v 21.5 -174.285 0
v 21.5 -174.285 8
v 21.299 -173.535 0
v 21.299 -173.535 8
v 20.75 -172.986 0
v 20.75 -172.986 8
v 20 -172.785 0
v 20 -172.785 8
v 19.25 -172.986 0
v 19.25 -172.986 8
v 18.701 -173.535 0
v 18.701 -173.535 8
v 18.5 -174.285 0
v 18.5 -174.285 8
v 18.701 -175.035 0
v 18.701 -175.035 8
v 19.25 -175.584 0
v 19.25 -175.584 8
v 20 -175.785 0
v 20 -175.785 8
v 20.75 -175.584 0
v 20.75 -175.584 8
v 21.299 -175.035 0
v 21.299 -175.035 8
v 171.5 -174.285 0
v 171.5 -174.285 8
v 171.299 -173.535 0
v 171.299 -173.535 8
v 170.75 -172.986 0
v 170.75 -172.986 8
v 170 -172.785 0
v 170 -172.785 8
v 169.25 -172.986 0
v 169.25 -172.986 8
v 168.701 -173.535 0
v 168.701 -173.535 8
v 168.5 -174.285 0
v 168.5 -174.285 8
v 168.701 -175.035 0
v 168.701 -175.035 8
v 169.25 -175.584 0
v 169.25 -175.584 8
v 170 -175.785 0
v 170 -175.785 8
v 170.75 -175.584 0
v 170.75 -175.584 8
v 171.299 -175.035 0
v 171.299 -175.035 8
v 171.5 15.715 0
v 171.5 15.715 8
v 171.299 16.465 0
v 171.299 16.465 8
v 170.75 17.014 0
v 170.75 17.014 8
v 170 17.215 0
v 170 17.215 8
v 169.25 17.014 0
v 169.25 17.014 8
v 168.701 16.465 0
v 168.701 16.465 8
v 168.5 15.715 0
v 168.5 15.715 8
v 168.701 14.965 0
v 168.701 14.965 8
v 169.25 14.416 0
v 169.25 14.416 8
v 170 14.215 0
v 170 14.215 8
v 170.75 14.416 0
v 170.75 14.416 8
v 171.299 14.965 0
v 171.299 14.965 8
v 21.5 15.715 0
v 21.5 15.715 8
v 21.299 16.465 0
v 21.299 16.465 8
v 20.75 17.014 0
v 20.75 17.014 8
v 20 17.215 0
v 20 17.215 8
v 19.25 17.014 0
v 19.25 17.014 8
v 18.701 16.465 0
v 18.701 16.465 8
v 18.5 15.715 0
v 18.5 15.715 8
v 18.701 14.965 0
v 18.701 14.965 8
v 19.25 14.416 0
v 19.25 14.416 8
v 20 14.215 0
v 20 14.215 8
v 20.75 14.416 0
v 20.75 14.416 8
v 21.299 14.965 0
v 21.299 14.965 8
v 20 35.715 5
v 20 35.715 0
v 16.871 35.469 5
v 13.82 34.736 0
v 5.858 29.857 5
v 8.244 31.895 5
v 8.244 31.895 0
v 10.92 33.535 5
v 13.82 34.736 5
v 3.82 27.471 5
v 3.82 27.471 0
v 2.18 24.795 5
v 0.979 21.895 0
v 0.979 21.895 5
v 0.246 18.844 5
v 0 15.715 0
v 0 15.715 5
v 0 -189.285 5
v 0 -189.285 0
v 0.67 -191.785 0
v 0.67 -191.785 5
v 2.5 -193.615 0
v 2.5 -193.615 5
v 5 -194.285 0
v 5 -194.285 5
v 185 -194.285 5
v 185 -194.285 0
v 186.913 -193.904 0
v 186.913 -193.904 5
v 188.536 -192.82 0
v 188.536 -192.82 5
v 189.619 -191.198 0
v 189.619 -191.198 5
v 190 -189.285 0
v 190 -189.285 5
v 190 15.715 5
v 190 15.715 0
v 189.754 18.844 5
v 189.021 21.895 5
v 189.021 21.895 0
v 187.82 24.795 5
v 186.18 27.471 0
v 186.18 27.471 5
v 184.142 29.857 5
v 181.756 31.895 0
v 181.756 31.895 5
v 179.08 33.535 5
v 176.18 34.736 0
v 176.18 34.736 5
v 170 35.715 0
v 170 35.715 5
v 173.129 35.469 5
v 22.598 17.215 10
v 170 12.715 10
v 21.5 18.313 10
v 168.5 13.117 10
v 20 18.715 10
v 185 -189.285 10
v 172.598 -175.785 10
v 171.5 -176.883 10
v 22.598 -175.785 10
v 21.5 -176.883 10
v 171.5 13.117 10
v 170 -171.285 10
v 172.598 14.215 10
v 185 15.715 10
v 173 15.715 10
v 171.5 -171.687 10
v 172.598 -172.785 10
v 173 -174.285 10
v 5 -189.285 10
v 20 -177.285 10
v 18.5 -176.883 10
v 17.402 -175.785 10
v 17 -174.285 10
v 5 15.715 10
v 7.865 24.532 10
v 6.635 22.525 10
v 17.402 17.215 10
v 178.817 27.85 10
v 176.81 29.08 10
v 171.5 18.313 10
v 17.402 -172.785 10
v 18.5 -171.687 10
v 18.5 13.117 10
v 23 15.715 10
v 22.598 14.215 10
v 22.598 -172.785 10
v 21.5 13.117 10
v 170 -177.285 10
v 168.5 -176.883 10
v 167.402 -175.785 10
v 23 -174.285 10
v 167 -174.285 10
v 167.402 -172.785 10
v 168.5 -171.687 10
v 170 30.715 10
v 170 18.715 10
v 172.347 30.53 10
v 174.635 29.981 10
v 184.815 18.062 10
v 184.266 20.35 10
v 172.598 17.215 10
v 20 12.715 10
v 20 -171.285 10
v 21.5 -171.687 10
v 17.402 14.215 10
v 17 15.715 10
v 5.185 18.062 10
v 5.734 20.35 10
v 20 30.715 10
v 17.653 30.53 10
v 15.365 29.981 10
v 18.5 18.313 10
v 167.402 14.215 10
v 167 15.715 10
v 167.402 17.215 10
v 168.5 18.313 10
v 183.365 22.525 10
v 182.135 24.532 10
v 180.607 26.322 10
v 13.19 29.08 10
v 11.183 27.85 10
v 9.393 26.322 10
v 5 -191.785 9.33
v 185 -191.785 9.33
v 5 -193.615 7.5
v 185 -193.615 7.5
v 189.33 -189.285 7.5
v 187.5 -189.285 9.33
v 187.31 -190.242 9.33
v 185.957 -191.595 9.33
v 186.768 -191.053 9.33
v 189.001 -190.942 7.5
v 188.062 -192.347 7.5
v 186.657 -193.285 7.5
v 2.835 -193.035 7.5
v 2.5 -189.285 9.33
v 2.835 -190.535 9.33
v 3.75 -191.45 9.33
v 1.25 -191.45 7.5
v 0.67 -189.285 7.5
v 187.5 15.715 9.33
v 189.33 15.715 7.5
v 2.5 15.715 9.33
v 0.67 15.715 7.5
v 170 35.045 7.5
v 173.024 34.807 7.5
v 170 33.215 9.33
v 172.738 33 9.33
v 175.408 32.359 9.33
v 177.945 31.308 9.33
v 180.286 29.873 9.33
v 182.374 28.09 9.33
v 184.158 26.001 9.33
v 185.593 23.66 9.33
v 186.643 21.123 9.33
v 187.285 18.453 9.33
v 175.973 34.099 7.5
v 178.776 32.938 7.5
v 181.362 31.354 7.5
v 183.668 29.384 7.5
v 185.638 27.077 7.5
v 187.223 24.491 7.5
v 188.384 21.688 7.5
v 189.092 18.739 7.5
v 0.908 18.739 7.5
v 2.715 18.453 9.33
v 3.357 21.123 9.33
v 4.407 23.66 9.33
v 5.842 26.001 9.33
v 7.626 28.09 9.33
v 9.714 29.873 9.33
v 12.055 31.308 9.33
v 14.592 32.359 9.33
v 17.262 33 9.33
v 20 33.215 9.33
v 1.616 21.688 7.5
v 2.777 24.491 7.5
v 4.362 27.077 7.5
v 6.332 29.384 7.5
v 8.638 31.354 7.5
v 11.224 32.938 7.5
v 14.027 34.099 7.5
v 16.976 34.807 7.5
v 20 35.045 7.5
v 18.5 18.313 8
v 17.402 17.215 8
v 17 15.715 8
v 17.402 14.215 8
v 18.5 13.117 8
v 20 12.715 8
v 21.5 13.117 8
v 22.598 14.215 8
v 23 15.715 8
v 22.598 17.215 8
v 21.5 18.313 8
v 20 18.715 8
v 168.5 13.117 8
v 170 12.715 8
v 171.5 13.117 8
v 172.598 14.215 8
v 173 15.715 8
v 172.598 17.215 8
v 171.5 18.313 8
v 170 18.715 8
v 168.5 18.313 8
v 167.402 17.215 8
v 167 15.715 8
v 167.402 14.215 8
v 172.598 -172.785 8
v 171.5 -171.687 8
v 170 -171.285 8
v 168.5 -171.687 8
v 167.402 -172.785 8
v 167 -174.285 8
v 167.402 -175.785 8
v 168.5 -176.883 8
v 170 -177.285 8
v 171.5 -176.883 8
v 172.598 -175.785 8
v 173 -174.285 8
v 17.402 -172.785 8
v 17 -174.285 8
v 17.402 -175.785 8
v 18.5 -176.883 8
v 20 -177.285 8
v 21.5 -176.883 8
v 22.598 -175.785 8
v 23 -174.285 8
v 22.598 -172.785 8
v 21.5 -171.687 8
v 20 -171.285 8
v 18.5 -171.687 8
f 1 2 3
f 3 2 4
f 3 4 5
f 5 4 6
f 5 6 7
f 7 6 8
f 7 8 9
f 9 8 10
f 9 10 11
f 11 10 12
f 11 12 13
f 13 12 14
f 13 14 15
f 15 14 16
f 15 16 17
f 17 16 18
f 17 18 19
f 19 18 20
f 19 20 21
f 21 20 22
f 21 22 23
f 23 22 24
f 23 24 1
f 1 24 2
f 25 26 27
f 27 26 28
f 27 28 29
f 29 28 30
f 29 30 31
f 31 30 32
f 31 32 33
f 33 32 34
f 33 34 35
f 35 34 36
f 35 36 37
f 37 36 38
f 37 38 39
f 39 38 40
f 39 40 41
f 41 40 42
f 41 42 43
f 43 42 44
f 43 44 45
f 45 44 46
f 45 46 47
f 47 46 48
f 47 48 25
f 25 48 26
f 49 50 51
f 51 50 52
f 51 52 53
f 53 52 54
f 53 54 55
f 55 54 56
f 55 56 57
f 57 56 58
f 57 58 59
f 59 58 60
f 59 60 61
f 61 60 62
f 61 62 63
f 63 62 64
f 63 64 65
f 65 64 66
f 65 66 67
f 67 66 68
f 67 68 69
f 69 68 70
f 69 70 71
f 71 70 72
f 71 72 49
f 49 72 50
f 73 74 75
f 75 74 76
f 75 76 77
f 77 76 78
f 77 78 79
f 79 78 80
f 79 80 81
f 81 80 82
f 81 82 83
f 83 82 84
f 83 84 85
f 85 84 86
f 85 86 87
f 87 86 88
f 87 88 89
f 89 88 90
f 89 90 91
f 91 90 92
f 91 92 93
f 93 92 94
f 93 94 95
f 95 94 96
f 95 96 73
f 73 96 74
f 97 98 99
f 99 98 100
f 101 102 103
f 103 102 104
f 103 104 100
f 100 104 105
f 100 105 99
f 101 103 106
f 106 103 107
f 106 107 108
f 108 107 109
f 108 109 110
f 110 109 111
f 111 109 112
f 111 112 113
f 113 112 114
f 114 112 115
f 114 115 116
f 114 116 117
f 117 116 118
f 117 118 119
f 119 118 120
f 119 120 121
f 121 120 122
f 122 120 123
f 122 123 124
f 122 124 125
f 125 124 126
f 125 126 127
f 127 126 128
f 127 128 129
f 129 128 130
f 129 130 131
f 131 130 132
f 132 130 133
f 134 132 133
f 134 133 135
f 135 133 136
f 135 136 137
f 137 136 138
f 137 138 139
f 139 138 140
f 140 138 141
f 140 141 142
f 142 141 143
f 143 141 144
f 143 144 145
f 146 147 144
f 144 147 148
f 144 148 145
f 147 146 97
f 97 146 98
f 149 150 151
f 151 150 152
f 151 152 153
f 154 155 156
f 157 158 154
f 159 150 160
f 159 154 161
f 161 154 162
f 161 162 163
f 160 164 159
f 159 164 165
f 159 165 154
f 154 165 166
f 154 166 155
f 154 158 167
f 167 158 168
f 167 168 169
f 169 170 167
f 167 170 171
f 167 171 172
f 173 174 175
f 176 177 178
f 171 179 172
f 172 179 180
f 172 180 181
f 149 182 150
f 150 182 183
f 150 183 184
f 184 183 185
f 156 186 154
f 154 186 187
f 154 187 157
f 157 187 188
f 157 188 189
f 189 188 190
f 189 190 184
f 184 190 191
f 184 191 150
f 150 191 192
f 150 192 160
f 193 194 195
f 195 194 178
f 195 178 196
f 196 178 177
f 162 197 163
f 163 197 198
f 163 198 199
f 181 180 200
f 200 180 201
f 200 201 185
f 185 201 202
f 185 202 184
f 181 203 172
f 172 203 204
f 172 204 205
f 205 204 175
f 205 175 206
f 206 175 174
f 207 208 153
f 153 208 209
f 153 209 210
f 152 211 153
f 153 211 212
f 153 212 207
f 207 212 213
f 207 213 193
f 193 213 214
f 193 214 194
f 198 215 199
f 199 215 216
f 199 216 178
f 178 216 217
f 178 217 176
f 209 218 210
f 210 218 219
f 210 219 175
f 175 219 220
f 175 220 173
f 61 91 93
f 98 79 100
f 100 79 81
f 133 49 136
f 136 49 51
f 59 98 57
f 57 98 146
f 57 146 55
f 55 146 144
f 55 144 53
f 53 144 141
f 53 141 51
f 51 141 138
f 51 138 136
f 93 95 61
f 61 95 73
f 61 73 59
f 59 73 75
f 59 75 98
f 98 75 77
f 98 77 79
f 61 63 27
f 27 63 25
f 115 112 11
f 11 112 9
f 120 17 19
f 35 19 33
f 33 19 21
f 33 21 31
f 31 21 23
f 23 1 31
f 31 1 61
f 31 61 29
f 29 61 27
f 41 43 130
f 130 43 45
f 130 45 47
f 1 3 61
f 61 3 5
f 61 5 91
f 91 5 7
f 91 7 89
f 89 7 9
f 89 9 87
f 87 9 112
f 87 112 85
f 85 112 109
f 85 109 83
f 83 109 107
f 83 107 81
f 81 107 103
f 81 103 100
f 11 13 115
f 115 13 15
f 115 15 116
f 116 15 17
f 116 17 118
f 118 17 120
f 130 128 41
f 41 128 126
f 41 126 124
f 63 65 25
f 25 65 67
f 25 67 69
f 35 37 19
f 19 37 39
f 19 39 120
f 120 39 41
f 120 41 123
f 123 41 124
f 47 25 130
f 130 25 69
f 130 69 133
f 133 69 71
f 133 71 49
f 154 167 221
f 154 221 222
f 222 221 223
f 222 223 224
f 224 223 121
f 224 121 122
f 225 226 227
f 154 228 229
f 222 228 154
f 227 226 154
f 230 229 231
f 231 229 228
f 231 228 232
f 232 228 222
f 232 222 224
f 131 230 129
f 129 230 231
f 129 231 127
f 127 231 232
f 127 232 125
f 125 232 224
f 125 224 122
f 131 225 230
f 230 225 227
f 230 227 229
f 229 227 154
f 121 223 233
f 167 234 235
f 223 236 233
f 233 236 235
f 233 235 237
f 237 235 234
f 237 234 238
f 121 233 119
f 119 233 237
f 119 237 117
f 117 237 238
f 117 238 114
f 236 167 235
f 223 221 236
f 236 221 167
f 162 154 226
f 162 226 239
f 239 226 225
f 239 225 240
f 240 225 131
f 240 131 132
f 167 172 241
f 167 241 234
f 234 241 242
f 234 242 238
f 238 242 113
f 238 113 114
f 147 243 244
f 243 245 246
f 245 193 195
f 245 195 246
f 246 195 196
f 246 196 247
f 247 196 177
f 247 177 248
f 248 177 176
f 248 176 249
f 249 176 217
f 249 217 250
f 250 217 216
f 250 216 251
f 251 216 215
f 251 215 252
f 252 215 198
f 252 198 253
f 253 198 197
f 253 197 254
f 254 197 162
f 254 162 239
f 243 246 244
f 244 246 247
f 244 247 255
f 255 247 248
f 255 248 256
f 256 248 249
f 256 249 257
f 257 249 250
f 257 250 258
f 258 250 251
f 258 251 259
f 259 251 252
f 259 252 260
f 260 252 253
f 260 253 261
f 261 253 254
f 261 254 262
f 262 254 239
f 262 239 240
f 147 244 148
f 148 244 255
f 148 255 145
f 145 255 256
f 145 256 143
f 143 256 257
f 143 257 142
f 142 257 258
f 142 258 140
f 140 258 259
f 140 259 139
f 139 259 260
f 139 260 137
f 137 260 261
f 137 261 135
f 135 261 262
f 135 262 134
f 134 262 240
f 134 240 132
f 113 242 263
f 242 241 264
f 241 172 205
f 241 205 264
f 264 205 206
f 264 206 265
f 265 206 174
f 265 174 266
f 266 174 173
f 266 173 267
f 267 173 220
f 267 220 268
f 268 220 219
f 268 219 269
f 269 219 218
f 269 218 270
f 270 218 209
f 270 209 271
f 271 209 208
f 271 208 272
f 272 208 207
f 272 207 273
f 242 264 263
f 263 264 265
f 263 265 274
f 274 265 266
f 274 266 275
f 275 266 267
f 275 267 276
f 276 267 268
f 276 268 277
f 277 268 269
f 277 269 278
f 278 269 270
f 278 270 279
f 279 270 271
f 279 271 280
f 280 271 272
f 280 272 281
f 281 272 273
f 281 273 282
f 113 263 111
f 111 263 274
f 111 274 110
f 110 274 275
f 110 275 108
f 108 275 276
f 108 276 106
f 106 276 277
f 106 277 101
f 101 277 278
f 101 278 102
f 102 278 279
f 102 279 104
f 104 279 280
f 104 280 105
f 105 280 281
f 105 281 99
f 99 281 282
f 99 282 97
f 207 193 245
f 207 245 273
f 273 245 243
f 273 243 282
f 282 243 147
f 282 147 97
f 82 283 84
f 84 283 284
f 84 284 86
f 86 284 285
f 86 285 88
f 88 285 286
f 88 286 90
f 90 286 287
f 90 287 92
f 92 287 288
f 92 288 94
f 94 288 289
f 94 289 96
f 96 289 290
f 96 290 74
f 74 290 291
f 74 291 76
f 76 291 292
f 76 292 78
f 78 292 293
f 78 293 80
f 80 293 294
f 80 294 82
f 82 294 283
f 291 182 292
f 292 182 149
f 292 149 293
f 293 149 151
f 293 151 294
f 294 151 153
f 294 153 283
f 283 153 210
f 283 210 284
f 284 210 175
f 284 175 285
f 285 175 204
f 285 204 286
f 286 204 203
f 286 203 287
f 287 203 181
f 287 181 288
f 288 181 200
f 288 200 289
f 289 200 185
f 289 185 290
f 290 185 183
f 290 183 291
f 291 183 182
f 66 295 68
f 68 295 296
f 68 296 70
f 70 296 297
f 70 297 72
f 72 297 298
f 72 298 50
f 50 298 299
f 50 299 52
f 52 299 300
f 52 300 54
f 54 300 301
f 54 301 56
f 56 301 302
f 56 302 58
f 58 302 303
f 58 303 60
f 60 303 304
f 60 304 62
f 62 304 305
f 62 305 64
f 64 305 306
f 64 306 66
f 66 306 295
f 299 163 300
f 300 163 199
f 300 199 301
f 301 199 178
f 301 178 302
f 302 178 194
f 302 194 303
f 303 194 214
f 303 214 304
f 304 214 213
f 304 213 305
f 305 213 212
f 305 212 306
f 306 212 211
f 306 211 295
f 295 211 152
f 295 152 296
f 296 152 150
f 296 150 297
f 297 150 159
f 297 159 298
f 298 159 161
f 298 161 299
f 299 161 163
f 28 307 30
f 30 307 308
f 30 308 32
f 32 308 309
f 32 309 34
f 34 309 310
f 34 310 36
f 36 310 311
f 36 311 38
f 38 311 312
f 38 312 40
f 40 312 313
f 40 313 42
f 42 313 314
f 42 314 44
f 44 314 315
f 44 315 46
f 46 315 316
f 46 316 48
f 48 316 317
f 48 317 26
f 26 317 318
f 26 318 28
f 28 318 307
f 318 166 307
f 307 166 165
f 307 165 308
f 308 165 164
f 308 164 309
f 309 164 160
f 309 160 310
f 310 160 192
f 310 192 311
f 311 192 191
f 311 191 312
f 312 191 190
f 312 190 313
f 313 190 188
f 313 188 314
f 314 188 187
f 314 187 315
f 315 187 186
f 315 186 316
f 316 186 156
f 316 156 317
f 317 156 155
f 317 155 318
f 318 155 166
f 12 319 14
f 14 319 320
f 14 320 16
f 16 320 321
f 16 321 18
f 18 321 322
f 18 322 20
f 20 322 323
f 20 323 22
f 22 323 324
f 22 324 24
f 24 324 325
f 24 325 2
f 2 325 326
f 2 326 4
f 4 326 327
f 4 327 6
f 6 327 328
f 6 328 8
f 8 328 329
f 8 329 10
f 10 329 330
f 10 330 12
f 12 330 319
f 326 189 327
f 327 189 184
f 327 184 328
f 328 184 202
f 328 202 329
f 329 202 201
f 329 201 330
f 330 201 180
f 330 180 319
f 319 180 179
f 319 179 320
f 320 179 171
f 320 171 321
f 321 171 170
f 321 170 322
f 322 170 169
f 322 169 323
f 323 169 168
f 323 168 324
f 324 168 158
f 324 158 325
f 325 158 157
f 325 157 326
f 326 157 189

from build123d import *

# Parameters (mm, degrees)
BOSS_EXTRUDE1_DEPTH = 10
FILLET1_R           = 5
CUT_EXTRUDE1_REACH  = 273.931
SKETCH2_R           = 1.5
SKETCH3_R           = 3
CUT_EXTRUDE2_DEPTH  = 2


with BuildPart() as part:
    # Sketch1 → Boss-Extrude1 (new body)
    with BuildSketch(Plane.XY):
        with BuildLine():
            Line((20, 35.715152736), (170, 35.715152736))
            ThreePointArc((170, 35.715152736), (184.142135624, 29.85728836), (190, 15.715152736))
            Line((190, 15.715152736), (190, -189.284847264))
            ThreePointArc((190, -189.284847264), (188.535533906, -192.82038117), (185, -194.284847264))
            Line((185, -194.284847264), (5, -194.284847264))
            ThreePointArc((5, -194.284847264), (1.464466094, -192.82038117), (0, -189.284847264))
            Line((0, -189.284847264), (0, 15.715152736))
            ThreePointArc((0, 15.715152736), (5.857864376, 29.85728836), (20, 35.715152736))
        make_face()
    extrude(amount=BOSS_EXTRUDE1_DEPTH)

    # Fillet1
    fillet1_edges = [part.edges().sort_by_distance(p)[0] for p in [
        (1.464466094, -192.82038117, 10),
        (95, -194.284847264, 10),
        (188.535533906, -192.82038117, 10),
        (190, -86.784847264, 10),
        (184.142135624, 29.85728836, 10),
        (95, 35.715152736, 10),
        (5.857864376, 29.85728836, 10),
        (0, -86.784847264, 10),
    ]]
    fillet(fillet1_edges, radius=FILLET1_R)

    # Sketch2 → Cut-Extrude1 (cut, up to next)
    with BuildSketch(Plane.XY.offset(10), mode=Mode.PRIVATE) as cut_extrude1_sk1:
        with Locations((20, -174.284847264)):
            Circle(SKETCH2_R)
    cut_extrude1_tool1 = extrude(cut_extrude1_sk1.sketch, amount=-CUT_EXTRUDE1_REACH, mode=Mode.PRIVATE) & part.part
    # Sketch2 → Cut-Extrude1 (cut, up to next)
    with BuildSketch(Plane.XY.offset(10), mode=Mode.PRIVATE) as cut_extrude1_sk2:
        with Locations((170, -174.284847264)):
            Circle(SKETCH2_R)
    cut_extrude1_tool2 = extrude(cut_extrude1_sk2.sketch, amount=-CUT_EXTRUDE1_REACH, mode=Mode.PRIVATE) & part.part
    # Sketch2 → Cut-Extrude1 (cut, up to next)
    with BuildSketch(Plane.XY.offset(10), mode=Mode.PRIVATE) as cut_extrude1_sk3:
        with Locations((170, 15.715152736)):
            Circle(SKETCH2_R)
    cut_extrude1_tool3 = extrude(cut_extrude1_sk3.sketch, amount=-CUT_EXTRUDE1_REACH, mode=Mode.PRIVATE) & part.part
    # Sketch2 → Cut-Extrude1 (cut, up to next)
    with BuildSketch(Plane.XY.offset(10), mode=Mode.PRIVATE) as cut_extrude1_sk4:
        with Locations((20, 15.715152736)):
            Circle(SKETCH2_R)
    cut_extrude1_tool4 = extrude(cut_extrude1_sk4.sketch, amount=-CUT_EXTRUDE1_REACH, mode=Mode.PRIVATE) & part.part
    add(cut_extrude1_tool1.solids().sort_by_distance((20, -174.284847, 10))[0], mode=Mode.SUBTRACT)
    add(cut_extrude1_tool2.solids().sort_by_distance((170, -174.284847, 10))[0], mode=Mode.SUBTRACT)
    add(cut_extrude1_tool3.solids().sort_by_distance((170, 15.715153, 10))[0], mode=Mode.SUBTRACT)
    add(cut_extrude1_tool4.solids().sort_by_distance((20, 15.715153, 10))[0], mode=Mode.SUBTRACT)

    # Sketch3 → Cut-Extrude2 (cut)
    with BuildSketch(Plane.XY.offset(10)):
        with Locations((20, 15.715152736)):
            Circle(SKETCH3_R)
        with Locations((170, 15.715152736)):
            Circle(SKETCH3_R)
        with Locations((170, -174.284847264)):
            Circle(SKETCH3_R)
        with Locations((20, -174.284847264)):
            Circle(SKETCH3_R)
    extrude(amount=-CUT_EXTRUDE2_DEPTH, mode=Mode.SUBTRACT)


solid = part.part
